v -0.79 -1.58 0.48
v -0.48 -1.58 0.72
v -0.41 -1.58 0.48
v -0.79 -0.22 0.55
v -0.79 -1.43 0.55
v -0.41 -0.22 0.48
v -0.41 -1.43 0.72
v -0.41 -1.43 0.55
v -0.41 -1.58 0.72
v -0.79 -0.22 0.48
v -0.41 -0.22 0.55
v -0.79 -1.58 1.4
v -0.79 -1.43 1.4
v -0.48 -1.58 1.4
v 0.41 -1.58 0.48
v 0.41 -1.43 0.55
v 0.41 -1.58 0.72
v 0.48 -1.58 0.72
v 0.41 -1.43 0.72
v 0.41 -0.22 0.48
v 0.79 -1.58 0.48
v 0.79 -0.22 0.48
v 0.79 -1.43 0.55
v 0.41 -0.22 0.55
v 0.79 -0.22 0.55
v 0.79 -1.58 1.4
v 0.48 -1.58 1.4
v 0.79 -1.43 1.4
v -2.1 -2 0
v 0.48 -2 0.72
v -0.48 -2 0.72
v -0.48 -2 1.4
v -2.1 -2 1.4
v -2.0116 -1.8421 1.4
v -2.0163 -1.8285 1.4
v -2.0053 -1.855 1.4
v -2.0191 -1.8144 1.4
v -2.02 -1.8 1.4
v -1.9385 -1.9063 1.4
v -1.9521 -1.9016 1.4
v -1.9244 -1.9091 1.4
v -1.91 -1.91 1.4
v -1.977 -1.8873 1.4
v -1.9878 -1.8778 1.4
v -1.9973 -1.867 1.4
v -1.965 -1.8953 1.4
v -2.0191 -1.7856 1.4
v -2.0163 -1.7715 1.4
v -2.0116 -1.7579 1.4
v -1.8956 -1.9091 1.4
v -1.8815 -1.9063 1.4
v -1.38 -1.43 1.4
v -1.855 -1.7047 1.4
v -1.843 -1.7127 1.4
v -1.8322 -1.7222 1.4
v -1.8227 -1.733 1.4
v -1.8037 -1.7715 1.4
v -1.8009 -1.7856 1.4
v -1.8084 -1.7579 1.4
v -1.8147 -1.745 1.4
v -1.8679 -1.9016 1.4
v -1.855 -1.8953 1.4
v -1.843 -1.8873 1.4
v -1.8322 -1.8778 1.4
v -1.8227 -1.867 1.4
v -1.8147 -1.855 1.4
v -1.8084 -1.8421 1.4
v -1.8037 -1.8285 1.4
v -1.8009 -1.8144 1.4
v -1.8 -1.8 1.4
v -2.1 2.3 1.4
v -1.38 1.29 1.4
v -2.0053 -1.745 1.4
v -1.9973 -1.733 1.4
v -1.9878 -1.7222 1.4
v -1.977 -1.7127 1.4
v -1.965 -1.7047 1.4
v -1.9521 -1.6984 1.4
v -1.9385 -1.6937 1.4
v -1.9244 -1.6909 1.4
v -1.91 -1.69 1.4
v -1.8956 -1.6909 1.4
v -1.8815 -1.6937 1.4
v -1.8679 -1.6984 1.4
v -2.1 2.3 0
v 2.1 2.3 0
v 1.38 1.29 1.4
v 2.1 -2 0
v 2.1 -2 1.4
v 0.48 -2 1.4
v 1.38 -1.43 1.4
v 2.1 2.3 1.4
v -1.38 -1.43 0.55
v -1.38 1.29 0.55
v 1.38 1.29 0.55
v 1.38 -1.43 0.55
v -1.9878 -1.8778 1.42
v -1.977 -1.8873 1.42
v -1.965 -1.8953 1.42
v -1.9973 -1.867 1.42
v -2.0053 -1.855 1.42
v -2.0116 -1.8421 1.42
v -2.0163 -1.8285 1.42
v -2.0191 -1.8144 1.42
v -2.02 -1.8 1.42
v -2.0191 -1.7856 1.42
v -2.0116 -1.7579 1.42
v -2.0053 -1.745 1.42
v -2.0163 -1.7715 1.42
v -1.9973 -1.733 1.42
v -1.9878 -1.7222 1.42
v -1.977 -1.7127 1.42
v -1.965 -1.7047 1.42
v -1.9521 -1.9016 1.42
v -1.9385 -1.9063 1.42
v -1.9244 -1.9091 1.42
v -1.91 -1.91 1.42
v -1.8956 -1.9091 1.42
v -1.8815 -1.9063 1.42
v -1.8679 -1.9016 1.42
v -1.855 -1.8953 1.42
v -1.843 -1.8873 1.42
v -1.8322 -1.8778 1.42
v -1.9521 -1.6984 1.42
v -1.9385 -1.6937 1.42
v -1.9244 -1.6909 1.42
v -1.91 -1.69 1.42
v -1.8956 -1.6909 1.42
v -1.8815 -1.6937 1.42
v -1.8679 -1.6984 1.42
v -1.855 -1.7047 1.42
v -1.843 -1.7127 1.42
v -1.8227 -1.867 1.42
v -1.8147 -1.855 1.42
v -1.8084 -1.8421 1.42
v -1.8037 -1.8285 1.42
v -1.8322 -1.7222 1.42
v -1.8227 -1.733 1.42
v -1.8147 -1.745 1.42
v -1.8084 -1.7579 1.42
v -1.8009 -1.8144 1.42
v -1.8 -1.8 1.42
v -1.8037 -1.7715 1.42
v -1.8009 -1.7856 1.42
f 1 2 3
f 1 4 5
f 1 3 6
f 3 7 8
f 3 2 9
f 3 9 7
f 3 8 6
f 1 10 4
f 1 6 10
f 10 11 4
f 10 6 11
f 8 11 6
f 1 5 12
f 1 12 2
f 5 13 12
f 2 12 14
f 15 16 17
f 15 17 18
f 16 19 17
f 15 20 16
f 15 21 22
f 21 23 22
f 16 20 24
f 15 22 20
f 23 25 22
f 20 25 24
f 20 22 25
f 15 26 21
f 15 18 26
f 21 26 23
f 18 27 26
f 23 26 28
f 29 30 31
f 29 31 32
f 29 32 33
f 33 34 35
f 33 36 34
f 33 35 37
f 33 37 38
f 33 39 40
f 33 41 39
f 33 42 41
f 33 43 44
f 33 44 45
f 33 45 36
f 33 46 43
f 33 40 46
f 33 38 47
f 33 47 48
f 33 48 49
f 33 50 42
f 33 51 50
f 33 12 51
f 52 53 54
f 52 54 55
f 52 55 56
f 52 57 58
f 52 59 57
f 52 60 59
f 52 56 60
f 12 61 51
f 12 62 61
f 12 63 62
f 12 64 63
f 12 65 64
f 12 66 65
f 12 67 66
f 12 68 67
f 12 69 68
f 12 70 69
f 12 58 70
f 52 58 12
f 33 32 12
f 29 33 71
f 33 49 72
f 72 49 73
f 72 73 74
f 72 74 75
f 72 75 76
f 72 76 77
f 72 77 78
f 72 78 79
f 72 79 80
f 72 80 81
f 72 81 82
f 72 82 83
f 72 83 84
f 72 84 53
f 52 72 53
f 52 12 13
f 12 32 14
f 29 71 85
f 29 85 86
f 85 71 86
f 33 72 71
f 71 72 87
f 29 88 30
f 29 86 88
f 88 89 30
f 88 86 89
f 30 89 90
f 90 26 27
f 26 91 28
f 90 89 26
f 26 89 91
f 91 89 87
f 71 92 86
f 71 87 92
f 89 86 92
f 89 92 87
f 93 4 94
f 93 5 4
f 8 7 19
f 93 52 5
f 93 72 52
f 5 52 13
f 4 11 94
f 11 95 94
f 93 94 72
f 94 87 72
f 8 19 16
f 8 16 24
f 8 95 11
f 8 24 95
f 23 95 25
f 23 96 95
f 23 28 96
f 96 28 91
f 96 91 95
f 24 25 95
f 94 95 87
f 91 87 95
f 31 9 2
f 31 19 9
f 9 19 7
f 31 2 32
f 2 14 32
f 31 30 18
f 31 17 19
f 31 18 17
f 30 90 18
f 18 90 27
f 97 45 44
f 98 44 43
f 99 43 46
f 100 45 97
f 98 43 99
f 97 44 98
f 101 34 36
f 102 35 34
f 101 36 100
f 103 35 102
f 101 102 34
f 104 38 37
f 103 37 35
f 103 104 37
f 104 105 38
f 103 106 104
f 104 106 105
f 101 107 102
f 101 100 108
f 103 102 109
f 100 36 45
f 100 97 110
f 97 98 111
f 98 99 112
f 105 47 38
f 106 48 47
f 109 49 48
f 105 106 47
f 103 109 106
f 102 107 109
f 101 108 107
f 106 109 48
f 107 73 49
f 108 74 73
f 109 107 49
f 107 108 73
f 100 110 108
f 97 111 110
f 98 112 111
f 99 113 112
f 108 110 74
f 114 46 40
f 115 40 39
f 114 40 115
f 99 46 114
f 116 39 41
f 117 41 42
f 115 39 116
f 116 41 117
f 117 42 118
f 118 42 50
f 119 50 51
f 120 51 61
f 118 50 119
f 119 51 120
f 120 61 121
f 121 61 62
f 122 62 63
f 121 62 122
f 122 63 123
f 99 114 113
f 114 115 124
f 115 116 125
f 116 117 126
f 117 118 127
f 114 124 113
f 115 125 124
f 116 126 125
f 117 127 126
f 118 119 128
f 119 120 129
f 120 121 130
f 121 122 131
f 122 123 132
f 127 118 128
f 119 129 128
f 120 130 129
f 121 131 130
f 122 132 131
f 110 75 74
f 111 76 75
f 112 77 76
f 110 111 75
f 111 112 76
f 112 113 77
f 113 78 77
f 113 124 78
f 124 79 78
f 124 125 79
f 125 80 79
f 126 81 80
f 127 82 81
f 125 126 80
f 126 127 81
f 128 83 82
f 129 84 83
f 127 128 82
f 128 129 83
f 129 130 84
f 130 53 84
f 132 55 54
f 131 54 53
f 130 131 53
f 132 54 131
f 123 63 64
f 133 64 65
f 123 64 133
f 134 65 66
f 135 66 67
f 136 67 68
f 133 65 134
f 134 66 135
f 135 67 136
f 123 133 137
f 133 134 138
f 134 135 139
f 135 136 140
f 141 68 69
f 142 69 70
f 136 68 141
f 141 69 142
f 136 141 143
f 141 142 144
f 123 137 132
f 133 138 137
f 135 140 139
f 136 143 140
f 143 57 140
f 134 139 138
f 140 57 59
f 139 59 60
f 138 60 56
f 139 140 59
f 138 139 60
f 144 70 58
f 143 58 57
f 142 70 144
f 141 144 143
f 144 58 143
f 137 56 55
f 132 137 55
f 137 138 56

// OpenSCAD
// Simplified visual model for JST BM02B-ACHSS-GAN-ETF (ACH, 2P).
//
// Evidence: JST eACH official datasheet archived one directory above.
// External envelope used here: 4.2 mm x 4.3 mm x 1.4 mm.
// The internal cavity is illustrative. This file and its generated STL are
// PREVIEW ONLY: do not use them for tolerance, collision, or manufacturing
// decisions. JST's official STEP requires a license form and was not fetched.

$fn = 48;

body_w = 4.2;
body_d = 4.3;
body_h = 1.4;
body_y0 = -2.0;

module housing() {
    difference() {
        // Official outside envelope, aligned to the KiCad footprint F.Fab.
        translate([-body_w / 2, body_y0, 0])
            cube([body_w, body_d, body_h]);

        // Illustrative top-entry cavity; intentionally not dimension evidence.
        translate([-1.38, -1.43, 0.55])
            cube([2.76, 2.72, 1.0]);

        // Front keying opening and the two contact-entry channels.
        translate([-0.48, body_y0 - 0.01, 0.72])
            cube([0.96, 0.72, 0.78]);
        for (x = [-0.6, 0.6])
            translate([x - 0.19, -1.58, 0.48])
                cube([0.38, 1.36, 1.0]);
    }
}

module latch_details() {
    // Small exterior shoulders make the connector direction readable in 3D.
    for (x = [-1.76, 1.46])
        translate([x, 1.72, 0.18])
            cube([0.30, 0.58, 0.72]);

    // Pin-1 corner mark; visual only.
    translate([-1.91, -1.80, 1.38])
        cylinder(h = 0.04, d = 0.22);
}

color([0.94, 0.91, 0.76]) {
    union() {
        housing();
        latch_details();
    }
}
